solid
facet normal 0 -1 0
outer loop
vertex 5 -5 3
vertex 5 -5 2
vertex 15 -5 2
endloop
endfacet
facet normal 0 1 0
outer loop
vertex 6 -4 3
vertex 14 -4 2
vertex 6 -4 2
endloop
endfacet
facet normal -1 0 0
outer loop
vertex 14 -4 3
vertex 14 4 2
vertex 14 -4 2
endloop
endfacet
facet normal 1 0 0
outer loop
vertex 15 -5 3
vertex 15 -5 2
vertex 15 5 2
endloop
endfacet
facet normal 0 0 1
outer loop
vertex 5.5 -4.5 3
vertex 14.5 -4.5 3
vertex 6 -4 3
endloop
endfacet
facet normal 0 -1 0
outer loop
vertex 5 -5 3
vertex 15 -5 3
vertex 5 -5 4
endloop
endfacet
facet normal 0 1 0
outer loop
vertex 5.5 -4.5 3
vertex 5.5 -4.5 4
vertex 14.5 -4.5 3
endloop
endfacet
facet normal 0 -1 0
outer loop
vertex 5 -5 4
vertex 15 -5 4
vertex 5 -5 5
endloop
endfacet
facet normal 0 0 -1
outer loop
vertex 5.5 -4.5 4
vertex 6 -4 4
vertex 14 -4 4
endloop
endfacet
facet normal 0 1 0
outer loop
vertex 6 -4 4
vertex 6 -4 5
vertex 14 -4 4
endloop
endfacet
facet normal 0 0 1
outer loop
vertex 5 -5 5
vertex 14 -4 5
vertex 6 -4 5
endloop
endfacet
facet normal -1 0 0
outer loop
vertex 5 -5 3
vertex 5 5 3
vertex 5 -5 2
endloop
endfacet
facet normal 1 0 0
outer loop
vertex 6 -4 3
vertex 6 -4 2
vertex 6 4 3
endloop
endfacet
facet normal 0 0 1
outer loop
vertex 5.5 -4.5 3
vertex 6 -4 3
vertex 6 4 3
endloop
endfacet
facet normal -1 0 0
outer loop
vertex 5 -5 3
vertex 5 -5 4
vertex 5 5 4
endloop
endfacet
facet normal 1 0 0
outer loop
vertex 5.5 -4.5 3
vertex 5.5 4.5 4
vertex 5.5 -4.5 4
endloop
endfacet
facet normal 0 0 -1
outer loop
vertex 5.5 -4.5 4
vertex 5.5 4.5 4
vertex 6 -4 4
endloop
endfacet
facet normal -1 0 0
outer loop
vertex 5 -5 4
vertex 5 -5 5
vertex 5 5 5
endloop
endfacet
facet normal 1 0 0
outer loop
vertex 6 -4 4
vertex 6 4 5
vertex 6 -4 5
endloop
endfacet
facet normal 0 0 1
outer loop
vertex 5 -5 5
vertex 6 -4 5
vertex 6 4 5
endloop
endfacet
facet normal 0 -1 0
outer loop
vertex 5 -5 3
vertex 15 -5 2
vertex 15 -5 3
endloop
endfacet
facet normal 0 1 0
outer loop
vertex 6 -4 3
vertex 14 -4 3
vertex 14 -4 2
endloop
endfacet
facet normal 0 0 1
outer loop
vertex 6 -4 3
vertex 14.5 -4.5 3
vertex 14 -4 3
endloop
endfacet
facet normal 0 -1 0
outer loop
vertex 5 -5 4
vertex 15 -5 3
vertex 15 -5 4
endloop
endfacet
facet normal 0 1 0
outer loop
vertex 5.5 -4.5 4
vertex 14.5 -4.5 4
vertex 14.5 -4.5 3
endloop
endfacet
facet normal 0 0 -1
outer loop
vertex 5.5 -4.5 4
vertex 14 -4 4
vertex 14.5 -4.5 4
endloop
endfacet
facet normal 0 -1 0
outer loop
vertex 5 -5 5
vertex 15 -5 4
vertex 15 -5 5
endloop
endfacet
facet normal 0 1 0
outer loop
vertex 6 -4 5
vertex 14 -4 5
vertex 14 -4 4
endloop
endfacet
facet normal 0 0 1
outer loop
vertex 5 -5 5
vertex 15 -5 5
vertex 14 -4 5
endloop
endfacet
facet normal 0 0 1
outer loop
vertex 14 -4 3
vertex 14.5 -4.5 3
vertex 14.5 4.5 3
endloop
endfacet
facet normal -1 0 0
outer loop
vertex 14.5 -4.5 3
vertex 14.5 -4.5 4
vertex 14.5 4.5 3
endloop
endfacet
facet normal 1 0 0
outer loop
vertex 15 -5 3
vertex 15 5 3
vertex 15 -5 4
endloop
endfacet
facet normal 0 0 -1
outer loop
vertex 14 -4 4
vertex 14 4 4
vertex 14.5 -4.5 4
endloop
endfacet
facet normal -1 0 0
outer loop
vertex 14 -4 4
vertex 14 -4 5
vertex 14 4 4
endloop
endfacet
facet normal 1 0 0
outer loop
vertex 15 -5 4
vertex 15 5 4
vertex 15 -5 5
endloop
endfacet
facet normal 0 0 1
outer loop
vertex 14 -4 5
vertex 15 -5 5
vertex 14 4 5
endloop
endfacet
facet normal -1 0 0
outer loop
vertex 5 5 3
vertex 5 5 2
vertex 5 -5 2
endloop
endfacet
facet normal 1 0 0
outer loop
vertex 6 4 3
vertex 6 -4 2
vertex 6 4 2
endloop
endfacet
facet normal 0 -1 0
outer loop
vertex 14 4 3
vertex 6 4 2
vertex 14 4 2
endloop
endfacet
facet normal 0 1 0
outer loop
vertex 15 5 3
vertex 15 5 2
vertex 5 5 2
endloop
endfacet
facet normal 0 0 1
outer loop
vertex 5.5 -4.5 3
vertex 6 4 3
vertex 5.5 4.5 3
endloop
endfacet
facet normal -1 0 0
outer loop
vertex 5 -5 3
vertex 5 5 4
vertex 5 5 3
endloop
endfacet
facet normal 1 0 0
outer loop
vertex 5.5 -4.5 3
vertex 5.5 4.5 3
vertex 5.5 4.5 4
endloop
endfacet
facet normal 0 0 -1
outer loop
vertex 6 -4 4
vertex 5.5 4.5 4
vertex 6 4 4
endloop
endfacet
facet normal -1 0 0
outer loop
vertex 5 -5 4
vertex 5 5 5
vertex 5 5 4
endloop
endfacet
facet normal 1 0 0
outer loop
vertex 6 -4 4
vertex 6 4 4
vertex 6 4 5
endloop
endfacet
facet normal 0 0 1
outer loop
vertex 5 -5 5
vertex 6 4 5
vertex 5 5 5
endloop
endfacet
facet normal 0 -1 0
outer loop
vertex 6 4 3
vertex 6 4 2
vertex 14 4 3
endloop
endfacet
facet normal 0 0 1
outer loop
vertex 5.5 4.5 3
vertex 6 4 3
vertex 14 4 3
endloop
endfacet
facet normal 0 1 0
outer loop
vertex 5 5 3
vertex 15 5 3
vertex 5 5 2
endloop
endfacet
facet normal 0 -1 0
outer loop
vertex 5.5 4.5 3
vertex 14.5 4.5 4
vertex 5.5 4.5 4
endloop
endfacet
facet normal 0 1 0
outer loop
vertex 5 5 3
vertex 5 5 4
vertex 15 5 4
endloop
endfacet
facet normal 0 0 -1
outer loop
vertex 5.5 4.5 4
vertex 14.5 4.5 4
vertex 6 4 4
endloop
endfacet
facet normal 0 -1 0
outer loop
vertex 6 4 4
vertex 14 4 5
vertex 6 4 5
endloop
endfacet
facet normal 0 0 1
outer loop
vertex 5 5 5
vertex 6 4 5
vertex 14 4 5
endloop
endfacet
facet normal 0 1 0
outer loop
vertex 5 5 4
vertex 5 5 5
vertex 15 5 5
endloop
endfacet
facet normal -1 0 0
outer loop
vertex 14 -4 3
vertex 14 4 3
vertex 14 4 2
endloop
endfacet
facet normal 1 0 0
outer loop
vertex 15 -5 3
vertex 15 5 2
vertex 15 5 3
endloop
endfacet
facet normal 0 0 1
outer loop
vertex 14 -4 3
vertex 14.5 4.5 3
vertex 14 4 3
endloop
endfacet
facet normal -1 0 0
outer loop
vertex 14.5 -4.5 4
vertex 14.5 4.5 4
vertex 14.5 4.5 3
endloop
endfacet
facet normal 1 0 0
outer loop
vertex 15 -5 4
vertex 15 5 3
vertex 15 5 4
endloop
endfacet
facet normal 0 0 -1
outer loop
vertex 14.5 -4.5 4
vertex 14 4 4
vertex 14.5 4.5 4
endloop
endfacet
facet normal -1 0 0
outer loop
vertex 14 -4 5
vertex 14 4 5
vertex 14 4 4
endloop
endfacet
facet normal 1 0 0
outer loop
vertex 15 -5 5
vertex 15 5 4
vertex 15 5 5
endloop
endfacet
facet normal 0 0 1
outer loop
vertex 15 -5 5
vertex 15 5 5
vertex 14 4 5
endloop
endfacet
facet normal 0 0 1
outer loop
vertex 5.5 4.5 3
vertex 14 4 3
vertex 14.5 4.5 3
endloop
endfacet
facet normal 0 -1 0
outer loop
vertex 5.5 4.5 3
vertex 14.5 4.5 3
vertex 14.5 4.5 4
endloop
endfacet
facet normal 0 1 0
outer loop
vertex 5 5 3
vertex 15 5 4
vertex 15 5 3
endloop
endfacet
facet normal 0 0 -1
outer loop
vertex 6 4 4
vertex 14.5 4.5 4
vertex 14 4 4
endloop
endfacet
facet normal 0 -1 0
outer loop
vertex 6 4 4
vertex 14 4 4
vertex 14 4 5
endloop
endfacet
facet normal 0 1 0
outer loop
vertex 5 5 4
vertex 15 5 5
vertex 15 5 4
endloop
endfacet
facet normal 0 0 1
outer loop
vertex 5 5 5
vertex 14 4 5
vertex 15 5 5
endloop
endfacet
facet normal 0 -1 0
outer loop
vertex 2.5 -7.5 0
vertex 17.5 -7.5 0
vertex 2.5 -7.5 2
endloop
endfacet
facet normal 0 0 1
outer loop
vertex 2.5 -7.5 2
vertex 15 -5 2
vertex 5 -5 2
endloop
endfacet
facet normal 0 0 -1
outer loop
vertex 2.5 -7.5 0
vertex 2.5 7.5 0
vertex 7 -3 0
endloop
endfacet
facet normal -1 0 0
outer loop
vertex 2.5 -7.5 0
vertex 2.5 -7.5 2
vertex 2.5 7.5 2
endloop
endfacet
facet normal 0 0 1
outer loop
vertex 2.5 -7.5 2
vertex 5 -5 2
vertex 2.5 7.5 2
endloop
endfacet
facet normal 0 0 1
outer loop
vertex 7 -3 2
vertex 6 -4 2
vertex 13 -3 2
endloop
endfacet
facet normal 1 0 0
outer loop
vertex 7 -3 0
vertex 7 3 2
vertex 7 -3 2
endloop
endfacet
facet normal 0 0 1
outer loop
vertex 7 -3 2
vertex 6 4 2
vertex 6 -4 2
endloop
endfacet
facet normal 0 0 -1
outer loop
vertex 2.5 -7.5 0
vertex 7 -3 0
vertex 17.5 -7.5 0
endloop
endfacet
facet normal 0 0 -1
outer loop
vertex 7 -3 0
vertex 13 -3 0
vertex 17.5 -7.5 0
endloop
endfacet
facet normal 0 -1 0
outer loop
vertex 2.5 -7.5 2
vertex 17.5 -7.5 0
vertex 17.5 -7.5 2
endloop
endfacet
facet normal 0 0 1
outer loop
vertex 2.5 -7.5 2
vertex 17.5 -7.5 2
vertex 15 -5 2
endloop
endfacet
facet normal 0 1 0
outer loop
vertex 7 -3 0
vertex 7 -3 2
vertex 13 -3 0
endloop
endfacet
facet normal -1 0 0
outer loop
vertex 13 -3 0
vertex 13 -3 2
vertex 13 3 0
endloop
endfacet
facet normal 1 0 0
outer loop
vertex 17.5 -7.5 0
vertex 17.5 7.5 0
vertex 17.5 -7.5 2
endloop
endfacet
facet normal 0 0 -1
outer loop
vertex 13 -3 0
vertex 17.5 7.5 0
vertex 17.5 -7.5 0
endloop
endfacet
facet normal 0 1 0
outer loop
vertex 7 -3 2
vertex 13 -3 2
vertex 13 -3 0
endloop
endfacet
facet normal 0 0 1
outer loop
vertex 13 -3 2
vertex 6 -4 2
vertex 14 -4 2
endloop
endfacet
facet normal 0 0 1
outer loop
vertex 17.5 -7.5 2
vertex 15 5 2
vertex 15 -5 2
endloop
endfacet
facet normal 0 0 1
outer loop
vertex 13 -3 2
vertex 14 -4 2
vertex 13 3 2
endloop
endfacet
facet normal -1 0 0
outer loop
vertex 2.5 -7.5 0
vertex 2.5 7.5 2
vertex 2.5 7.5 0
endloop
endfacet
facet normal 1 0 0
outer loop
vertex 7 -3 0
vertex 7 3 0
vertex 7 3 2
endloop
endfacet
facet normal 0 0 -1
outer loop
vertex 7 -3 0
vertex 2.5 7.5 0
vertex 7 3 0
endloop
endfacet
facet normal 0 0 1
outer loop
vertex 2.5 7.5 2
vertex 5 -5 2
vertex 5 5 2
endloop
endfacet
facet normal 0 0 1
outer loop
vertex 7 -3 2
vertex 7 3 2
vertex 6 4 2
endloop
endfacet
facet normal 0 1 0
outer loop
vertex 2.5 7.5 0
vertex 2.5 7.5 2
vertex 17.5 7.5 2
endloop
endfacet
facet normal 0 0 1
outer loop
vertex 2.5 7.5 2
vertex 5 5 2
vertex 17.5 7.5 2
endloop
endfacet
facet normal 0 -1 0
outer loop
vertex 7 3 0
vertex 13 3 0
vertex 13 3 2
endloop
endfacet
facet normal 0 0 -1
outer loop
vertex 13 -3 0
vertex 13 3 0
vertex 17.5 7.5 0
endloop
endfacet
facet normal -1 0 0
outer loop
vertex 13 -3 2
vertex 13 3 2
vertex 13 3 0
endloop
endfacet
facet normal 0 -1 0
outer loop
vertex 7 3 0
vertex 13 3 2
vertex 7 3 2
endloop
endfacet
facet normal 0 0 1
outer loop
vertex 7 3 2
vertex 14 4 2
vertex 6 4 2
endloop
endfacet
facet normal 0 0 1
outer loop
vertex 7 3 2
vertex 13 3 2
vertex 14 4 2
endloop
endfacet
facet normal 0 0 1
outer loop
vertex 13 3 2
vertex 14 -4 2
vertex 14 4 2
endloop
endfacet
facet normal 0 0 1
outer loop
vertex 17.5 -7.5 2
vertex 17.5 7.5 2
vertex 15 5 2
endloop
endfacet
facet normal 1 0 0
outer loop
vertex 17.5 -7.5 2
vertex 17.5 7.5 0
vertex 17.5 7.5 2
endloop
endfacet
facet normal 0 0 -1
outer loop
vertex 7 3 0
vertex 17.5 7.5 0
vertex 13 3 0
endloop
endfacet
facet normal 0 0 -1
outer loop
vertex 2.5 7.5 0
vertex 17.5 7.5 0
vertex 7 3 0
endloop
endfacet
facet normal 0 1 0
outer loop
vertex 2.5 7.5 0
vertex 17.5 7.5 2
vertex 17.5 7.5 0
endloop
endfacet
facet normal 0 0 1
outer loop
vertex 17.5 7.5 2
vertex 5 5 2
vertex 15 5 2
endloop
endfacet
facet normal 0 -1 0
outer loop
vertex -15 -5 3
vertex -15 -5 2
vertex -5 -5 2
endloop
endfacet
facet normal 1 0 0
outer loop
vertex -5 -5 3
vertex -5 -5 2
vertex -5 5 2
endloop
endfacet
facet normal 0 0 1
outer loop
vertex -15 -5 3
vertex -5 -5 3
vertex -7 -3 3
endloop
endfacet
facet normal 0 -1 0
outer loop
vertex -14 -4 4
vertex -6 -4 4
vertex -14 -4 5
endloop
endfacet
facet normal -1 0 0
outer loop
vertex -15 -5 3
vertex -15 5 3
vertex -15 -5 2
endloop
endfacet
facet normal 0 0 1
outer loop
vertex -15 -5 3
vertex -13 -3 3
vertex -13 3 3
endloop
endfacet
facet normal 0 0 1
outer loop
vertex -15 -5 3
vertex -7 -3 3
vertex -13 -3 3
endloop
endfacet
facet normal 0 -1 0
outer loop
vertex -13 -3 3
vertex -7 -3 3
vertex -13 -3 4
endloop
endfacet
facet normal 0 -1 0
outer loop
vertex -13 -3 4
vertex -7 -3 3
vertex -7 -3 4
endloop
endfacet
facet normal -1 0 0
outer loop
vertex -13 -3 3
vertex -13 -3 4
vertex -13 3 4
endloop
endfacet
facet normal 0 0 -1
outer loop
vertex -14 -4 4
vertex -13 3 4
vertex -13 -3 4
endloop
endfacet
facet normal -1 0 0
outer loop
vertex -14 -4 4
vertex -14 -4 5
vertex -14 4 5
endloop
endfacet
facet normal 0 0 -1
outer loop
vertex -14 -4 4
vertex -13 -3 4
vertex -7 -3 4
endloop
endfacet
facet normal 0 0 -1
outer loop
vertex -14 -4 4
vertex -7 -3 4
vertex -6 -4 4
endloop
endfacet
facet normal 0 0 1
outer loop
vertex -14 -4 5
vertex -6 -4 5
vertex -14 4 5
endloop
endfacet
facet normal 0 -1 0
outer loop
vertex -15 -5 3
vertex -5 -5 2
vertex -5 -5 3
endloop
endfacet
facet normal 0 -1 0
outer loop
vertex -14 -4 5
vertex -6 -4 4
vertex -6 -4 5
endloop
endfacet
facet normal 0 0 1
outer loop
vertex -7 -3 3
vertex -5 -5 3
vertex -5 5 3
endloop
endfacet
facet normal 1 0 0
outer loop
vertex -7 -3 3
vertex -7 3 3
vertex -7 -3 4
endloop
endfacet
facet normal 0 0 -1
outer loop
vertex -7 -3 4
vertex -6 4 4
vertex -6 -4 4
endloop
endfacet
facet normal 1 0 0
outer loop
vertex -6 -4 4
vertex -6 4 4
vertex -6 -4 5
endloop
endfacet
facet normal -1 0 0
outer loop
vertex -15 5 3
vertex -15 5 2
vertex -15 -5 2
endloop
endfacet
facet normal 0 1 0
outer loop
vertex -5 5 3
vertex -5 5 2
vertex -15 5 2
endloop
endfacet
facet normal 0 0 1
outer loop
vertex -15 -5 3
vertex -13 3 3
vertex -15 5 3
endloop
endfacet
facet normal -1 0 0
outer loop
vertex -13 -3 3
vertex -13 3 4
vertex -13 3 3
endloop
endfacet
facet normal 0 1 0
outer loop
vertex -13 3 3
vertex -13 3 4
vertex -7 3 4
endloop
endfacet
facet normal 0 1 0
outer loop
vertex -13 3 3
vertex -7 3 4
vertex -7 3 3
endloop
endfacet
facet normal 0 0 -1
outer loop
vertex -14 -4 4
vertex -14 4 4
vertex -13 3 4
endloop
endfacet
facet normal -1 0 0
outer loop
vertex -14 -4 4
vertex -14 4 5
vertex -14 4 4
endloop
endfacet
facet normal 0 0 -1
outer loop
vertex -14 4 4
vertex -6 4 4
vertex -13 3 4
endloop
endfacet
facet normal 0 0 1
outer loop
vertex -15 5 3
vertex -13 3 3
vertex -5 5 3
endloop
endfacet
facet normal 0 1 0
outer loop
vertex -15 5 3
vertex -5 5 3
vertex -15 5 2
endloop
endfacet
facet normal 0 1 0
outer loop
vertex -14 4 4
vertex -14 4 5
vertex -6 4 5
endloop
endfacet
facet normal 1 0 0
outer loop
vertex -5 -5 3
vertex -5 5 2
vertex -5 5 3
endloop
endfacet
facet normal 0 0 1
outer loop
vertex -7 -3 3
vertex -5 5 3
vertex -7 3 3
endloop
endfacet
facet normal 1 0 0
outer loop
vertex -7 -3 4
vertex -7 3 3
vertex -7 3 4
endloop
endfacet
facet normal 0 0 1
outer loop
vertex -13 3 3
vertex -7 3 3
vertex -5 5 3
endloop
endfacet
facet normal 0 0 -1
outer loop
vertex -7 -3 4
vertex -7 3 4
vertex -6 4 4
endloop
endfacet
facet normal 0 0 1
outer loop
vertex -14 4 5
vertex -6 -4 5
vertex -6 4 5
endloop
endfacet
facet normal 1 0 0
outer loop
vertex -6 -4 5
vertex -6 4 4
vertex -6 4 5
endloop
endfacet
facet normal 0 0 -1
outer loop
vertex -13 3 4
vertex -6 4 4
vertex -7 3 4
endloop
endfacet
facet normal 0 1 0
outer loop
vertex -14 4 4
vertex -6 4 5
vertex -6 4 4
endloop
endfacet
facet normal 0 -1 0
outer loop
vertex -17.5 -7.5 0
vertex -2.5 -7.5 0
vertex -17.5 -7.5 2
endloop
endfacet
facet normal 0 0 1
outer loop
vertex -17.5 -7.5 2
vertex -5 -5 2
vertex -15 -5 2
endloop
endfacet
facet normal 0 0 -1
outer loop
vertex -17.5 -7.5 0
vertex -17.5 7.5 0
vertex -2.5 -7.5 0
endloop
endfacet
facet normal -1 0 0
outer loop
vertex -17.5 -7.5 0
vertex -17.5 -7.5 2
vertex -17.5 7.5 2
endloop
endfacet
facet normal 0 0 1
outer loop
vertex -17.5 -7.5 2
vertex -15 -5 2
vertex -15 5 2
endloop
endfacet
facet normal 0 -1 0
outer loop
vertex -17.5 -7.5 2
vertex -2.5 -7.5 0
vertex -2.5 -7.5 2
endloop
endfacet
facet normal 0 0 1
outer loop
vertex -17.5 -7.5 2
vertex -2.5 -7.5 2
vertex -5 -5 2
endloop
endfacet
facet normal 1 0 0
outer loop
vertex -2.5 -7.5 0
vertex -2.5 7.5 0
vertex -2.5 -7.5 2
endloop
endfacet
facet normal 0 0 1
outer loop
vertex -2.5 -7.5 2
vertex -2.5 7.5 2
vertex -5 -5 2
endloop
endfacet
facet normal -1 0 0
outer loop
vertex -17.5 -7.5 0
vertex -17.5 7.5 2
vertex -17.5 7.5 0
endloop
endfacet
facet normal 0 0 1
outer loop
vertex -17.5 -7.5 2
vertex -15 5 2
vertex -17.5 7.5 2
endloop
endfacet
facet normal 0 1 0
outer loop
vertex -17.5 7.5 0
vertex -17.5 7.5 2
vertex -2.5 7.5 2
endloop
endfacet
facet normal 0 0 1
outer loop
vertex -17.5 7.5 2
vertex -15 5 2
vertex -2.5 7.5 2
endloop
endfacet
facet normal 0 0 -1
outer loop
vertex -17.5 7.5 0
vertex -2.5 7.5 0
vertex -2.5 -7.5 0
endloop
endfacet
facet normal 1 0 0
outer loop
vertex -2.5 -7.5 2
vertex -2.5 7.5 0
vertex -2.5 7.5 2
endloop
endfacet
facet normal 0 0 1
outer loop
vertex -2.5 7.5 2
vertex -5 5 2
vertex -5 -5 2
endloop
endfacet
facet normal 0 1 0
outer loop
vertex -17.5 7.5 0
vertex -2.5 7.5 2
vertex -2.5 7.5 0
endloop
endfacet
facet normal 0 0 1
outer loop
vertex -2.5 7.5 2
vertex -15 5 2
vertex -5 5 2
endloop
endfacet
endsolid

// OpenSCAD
use <threadlib/threadlib.scad> 
use <clip.scad>
include <config.scad>


depth = 1;
height = 1;

translate([ 10, 0, 0]) { translate([0, 0, 2]) clip_outer(depth, 10, 10); linear_extrude(2) difference() { square([15, 15], true); square([10 - 4 * depth, 10 - 4 * depth], true); } }
translate([-10, 0, 0]) { translate([0, 0, 2]) clip_inner(depth, 10, 10); linear_extrude(2) square([15, 15], true); }
